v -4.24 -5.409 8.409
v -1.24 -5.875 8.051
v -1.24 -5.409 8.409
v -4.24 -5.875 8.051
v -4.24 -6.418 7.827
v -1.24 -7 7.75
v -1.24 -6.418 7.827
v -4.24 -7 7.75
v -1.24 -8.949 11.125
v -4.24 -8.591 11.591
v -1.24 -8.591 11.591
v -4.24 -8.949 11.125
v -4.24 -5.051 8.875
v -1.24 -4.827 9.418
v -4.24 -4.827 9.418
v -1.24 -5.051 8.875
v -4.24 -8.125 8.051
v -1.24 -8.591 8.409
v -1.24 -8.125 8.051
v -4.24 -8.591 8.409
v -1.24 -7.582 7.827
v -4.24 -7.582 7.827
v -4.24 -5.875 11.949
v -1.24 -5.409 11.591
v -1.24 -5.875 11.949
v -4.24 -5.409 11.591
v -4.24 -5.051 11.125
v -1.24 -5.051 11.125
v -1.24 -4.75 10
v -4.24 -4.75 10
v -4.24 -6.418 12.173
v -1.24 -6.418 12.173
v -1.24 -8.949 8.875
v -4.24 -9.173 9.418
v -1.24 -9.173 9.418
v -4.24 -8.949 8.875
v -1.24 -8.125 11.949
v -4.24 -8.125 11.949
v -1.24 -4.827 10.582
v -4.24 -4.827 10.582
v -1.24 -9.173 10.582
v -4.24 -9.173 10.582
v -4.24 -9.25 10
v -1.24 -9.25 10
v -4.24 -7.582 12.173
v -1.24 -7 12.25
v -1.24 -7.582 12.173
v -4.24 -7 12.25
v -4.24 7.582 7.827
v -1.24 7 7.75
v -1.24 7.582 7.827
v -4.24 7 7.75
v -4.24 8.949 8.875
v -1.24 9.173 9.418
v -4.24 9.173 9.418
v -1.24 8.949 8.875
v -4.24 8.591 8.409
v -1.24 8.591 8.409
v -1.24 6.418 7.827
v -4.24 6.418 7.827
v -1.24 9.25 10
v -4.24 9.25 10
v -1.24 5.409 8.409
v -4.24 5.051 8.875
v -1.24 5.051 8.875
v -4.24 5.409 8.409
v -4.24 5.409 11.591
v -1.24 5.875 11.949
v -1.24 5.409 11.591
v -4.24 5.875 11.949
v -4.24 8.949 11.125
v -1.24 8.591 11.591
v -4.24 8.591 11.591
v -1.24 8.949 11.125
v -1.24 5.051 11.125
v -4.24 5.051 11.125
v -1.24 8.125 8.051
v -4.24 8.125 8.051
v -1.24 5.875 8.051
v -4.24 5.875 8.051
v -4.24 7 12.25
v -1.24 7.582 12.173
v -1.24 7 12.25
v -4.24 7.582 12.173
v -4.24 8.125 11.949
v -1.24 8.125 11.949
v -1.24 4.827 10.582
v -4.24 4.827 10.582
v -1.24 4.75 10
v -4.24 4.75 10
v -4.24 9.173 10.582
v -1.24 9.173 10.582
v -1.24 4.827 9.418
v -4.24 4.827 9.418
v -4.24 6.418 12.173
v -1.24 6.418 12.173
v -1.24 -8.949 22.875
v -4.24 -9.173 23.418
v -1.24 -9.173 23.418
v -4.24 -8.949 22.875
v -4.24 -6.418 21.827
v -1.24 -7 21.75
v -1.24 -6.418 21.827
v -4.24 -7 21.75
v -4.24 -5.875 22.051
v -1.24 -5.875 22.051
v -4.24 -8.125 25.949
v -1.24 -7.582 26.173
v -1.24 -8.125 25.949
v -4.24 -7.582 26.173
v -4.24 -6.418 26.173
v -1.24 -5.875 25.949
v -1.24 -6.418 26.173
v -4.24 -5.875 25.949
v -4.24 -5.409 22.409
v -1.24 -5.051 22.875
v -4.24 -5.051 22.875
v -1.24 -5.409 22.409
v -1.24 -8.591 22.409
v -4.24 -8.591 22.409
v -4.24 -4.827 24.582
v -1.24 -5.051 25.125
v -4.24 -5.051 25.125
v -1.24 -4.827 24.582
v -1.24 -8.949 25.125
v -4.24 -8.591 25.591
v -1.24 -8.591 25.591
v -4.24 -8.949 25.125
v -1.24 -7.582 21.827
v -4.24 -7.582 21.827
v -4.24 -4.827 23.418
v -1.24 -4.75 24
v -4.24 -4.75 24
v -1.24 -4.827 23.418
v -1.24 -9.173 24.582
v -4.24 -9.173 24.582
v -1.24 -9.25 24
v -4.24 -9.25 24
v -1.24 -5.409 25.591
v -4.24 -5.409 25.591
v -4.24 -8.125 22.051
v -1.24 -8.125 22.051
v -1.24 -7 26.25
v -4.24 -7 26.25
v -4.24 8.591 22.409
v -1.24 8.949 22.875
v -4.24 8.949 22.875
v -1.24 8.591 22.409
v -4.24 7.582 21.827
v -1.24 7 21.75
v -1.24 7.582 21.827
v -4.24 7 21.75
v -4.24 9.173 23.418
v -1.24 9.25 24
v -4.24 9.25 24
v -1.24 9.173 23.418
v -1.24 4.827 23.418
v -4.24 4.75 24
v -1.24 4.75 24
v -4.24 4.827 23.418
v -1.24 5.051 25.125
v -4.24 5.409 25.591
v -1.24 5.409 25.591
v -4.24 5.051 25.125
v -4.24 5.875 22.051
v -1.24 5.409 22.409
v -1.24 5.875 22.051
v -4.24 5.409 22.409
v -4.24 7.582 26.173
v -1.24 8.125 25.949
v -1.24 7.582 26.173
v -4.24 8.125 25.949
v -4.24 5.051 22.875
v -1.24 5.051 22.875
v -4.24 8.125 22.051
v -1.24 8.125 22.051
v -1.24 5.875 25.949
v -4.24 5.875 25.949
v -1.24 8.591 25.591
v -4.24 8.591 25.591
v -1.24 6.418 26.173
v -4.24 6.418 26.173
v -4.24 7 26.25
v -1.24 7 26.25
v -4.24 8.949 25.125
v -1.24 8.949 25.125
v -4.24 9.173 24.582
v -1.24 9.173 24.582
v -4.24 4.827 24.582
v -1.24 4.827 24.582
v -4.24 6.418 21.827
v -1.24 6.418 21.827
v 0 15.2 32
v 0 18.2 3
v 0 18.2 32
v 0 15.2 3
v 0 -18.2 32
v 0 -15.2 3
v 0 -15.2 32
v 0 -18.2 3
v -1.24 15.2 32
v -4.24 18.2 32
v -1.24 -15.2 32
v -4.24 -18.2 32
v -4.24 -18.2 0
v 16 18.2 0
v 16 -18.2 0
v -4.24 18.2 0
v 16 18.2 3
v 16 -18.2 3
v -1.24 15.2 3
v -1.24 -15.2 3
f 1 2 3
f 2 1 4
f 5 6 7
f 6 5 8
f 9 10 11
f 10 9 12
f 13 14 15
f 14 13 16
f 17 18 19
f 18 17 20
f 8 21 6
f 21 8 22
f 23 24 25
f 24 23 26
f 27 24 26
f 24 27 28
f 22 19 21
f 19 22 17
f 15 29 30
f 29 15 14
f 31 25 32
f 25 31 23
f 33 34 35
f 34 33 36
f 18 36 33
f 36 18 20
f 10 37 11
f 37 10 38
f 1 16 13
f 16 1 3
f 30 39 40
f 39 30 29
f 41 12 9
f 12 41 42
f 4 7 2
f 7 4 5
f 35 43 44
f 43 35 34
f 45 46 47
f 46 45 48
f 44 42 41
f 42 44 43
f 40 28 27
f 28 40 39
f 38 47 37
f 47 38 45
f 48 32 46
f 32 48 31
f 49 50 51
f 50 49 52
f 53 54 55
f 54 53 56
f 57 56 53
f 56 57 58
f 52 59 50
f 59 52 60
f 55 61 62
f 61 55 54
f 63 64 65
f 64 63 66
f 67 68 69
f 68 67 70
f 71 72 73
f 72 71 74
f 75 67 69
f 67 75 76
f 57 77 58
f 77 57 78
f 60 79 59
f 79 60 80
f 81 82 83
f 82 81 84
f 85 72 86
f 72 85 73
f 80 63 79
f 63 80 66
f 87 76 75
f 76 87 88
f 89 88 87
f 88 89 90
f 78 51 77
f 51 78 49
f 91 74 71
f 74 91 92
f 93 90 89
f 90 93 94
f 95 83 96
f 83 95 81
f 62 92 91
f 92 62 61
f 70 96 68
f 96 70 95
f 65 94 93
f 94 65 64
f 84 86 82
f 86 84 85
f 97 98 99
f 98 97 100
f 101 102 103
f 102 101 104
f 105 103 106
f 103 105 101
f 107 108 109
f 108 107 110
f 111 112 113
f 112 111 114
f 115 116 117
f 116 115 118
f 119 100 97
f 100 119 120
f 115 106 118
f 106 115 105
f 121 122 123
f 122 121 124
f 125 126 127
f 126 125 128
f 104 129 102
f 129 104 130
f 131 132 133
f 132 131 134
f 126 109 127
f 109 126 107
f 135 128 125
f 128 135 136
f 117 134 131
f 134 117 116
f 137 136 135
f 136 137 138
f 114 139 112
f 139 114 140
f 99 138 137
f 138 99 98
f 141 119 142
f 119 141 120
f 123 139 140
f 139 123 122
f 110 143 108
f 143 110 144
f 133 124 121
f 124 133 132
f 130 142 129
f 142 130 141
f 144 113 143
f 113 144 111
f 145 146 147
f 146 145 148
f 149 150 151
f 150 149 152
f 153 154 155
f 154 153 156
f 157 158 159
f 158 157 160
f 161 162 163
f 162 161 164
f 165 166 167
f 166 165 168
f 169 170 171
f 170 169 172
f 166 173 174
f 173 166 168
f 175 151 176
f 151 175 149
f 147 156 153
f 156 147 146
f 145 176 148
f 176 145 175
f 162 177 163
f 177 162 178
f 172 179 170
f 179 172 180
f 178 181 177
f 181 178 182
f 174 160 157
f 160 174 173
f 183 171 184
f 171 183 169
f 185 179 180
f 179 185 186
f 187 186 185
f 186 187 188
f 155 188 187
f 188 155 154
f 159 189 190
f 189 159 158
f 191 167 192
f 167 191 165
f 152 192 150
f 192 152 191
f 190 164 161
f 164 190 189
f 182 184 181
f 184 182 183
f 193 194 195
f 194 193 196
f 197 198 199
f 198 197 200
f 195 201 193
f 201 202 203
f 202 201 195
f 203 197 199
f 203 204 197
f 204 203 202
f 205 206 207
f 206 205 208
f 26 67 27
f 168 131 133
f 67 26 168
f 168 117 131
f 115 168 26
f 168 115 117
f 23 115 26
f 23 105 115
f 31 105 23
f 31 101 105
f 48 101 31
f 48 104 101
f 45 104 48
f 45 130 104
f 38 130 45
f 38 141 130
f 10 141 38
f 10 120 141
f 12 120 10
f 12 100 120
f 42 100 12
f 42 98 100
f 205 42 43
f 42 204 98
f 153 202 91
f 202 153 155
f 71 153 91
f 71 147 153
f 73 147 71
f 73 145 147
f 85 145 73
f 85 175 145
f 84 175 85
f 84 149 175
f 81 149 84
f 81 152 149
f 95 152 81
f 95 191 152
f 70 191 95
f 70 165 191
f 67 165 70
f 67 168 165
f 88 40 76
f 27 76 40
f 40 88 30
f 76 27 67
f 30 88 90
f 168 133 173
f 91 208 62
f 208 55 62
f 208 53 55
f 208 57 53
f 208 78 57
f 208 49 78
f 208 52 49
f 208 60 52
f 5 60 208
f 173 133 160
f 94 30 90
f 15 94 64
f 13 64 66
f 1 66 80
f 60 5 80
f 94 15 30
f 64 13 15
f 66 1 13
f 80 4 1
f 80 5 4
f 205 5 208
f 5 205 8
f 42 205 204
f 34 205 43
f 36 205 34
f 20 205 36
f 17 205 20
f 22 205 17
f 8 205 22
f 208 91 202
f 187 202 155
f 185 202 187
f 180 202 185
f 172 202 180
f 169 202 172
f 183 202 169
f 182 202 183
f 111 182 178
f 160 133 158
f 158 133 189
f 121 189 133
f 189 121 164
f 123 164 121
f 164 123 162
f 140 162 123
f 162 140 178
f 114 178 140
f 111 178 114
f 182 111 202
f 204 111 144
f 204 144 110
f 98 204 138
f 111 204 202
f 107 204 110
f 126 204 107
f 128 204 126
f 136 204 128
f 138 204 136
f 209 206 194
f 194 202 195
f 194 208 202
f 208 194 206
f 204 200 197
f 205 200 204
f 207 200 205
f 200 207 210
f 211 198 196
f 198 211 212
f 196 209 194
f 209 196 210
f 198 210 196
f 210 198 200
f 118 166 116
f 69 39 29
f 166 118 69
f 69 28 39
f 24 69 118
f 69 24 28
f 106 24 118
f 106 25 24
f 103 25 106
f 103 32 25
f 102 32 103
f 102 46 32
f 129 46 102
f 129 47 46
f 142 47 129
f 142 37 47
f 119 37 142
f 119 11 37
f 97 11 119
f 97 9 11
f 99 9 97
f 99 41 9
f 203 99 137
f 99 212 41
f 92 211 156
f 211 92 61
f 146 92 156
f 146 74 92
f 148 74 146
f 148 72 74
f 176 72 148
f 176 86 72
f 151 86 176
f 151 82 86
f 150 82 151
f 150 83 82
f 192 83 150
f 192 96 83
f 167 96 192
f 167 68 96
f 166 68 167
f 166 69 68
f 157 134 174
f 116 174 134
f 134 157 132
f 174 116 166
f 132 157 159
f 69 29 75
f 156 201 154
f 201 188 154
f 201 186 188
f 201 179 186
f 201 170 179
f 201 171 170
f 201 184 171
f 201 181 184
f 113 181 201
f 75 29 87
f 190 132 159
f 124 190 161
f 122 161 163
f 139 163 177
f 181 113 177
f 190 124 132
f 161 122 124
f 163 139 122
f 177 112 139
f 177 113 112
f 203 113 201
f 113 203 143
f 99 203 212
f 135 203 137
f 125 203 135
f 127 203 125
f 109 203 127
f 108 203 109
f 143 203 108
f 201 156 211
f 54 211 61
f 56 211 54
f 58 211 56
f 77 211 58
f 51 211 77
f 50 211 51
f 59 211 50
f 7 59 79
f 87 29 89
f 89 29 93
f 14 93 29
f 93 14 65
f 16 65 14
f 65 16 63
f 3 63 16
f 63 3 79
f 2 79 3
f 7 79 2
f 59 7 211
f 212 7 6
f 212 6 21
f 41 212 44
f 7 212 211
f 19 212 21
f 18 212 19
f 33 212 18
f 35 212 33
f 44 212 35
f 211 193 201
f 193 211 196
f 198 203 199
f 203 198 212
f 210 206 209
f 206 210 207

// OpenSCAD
// file: lib.scad
// Shared pieces for the Winterlight PETG parts (Bambu Lab A1, 256 × 256 × 256 mm).
// Millimetres. Measure your own mounting strip and set strip_w / strip_t on the
// command line (-D strip_w=20) or in OpenSCAD's Customizer before printing.
$fn = 72;
strip_w = 30;   // pixel mounting strip width
strip_t = 1.54; // pixel mounting strip thickness (measured)
clr = 0.4;      // clearance per side, a snug slide fit in PETG
wall = 3;       // channel walls
tie_d = 4.5;    // holes for the 2.5 mm cable ties or an M4 bolt

// Closed slots the strip slides through (the ground strip's posts).
slot_t = strip_t + 2*clr;
slot_w = strip_w + 2*clr;
// Open pockets the strip ends sit in (mini trees, tree hub and ring): a close
// fit across, and a little shallower than the strip, so the strip stands
// proud of the face and the cable tie clamps it down.
proud = 0.3;
pocket_t = strip_t - proud;
pocket_w = strip_w + 2*0.2;
// Outside size of a strip channel: radial depth and tangential width.
ch_depth = pocket_t + wall;
ch_width = pocket_w + 2*wall;

// A channel that holds a strip's end: the strip runs up +Z with its face
// (and its pixels) towards +X. Open on the +X side so the strip drops in.
// Two pairs of holes go through the back wall: with the strip in place, drill
// through them into the strip (the part is the drill guide), then thread a
// cable tie in through one hole of a pair, across the strip's face and back
// out through the other, and close it behind the wall. One or two ties.
tie_pitch = 14;  // centre to centre of the two holes of a pair
module channel(h, floor = 3) {
  difference() {
    translate([-ch_depth, -ch_width/2, 0]) cube([ch_depth, ch_width, h]);
    translate([-pocket_t, -pocket_w/2, floor]) cube([pocket_t + 1, pocket_w, h]);
    for (z = [floor + 7, h - 8], y = [-tie_pitch/2, tie_pitch/2])
      translate([-ch_depth - 1, y, z]) rotate([0, 90, 0]) cylinder(d = tie_d, h = ch_depth + 2, $fn = 24);
  }
}

// n channels on a circle of radius r (the strip's face), leaning by tilt
// degrees: positive leans the top inwards, negative outwards.
module channel_ring(n, r, tilt, h, start = 0) {
  intersection() {
    for (i = [0 : n - 1]) rotate([0, 0, start + 360*i/n])
      translate([r, 0, 0]) rotate([0, -tilt, 0]) channel(h);
    translate([-1000, -1000, 0]) cube([2000, 2000, 1000]);
  }
}

// A flat ring with spokes to a centre boss: the plate that ties the channels together.
module spoked_ring(r_out, r_in, t, n, boss_d, arm_w = 8) {
  difference() { cylinder(r = r_out, h = t); translate([0, 0, -1]) cylinder(r = r_in, h = t + 2); }
  for (i = [0 : n - 1]) rotate([0, 0, 360*i/n + 180/n]) translate([0, -arm_w/2, 0]) cube([r_in + 1, arm_w, t]);
  cylinder(d = boss_d, h = t);
}

// Bricks for ballast: the paving in front of the house is stone, so nothing
// can be staked into it. The feet are trays that hold standard concrete paving
// bricks (betonklinkers, 22 × 11 × 8 cm, about 4 kg each). Set your own size.
brick_l = 220;
brick_w = 110;
brick_h = 80;
brick_clr = 3;      // bricks vary a few millimetres
tray_wall = 1.6;
tray_h = 20;
tray_lip = 10;      // the floor is only a ledge round the edge, to save PETG
tray_floor = 1.6;

// A tray for n bricks side by side along Y, its corner at the origin.
// gap: extra room between the bricks (for a rib); returns nothing, see tray_size.
function tray_inner(n = 1, gap = 0) = [brick_l + 2*brick_clr, n*(brick_w + 2*brick_clr) + gap];
module tray(n = 1, gap = 0) {
  in = tray_inner(n, gap);
  out = [in[0] + 2*tray_wall, in[1] + 2*tray_wall];
  difference() {
    cube([out[0], out[1], tray_h]);
    translate([tray_wall, tray_wall, tray_floor]) cube([in[0], in[1], tray_h]);
    translate([tray_wall + tray_lip, tray_wall + tray_lip, -1]) cube([in[0] - 2*tray_lip, in[1] - 2*tray_lip, tray_floor + 2]);
  }
}
// main file
// Fit test for the strip pockets: one short channel exactly as on the mini
// trees and the tree's hub and ring, with its two pairs of tie holes. Push a
// piece of strip in, drill through the holes into the strip, and tie it.
// Print flat, no supports.
include <lib.scad>
base = 3;
channel(32, base);
translate([-ch_depth, -ch_width/2, 0]) cube([ch_depth + 16, ch_width, base]);
